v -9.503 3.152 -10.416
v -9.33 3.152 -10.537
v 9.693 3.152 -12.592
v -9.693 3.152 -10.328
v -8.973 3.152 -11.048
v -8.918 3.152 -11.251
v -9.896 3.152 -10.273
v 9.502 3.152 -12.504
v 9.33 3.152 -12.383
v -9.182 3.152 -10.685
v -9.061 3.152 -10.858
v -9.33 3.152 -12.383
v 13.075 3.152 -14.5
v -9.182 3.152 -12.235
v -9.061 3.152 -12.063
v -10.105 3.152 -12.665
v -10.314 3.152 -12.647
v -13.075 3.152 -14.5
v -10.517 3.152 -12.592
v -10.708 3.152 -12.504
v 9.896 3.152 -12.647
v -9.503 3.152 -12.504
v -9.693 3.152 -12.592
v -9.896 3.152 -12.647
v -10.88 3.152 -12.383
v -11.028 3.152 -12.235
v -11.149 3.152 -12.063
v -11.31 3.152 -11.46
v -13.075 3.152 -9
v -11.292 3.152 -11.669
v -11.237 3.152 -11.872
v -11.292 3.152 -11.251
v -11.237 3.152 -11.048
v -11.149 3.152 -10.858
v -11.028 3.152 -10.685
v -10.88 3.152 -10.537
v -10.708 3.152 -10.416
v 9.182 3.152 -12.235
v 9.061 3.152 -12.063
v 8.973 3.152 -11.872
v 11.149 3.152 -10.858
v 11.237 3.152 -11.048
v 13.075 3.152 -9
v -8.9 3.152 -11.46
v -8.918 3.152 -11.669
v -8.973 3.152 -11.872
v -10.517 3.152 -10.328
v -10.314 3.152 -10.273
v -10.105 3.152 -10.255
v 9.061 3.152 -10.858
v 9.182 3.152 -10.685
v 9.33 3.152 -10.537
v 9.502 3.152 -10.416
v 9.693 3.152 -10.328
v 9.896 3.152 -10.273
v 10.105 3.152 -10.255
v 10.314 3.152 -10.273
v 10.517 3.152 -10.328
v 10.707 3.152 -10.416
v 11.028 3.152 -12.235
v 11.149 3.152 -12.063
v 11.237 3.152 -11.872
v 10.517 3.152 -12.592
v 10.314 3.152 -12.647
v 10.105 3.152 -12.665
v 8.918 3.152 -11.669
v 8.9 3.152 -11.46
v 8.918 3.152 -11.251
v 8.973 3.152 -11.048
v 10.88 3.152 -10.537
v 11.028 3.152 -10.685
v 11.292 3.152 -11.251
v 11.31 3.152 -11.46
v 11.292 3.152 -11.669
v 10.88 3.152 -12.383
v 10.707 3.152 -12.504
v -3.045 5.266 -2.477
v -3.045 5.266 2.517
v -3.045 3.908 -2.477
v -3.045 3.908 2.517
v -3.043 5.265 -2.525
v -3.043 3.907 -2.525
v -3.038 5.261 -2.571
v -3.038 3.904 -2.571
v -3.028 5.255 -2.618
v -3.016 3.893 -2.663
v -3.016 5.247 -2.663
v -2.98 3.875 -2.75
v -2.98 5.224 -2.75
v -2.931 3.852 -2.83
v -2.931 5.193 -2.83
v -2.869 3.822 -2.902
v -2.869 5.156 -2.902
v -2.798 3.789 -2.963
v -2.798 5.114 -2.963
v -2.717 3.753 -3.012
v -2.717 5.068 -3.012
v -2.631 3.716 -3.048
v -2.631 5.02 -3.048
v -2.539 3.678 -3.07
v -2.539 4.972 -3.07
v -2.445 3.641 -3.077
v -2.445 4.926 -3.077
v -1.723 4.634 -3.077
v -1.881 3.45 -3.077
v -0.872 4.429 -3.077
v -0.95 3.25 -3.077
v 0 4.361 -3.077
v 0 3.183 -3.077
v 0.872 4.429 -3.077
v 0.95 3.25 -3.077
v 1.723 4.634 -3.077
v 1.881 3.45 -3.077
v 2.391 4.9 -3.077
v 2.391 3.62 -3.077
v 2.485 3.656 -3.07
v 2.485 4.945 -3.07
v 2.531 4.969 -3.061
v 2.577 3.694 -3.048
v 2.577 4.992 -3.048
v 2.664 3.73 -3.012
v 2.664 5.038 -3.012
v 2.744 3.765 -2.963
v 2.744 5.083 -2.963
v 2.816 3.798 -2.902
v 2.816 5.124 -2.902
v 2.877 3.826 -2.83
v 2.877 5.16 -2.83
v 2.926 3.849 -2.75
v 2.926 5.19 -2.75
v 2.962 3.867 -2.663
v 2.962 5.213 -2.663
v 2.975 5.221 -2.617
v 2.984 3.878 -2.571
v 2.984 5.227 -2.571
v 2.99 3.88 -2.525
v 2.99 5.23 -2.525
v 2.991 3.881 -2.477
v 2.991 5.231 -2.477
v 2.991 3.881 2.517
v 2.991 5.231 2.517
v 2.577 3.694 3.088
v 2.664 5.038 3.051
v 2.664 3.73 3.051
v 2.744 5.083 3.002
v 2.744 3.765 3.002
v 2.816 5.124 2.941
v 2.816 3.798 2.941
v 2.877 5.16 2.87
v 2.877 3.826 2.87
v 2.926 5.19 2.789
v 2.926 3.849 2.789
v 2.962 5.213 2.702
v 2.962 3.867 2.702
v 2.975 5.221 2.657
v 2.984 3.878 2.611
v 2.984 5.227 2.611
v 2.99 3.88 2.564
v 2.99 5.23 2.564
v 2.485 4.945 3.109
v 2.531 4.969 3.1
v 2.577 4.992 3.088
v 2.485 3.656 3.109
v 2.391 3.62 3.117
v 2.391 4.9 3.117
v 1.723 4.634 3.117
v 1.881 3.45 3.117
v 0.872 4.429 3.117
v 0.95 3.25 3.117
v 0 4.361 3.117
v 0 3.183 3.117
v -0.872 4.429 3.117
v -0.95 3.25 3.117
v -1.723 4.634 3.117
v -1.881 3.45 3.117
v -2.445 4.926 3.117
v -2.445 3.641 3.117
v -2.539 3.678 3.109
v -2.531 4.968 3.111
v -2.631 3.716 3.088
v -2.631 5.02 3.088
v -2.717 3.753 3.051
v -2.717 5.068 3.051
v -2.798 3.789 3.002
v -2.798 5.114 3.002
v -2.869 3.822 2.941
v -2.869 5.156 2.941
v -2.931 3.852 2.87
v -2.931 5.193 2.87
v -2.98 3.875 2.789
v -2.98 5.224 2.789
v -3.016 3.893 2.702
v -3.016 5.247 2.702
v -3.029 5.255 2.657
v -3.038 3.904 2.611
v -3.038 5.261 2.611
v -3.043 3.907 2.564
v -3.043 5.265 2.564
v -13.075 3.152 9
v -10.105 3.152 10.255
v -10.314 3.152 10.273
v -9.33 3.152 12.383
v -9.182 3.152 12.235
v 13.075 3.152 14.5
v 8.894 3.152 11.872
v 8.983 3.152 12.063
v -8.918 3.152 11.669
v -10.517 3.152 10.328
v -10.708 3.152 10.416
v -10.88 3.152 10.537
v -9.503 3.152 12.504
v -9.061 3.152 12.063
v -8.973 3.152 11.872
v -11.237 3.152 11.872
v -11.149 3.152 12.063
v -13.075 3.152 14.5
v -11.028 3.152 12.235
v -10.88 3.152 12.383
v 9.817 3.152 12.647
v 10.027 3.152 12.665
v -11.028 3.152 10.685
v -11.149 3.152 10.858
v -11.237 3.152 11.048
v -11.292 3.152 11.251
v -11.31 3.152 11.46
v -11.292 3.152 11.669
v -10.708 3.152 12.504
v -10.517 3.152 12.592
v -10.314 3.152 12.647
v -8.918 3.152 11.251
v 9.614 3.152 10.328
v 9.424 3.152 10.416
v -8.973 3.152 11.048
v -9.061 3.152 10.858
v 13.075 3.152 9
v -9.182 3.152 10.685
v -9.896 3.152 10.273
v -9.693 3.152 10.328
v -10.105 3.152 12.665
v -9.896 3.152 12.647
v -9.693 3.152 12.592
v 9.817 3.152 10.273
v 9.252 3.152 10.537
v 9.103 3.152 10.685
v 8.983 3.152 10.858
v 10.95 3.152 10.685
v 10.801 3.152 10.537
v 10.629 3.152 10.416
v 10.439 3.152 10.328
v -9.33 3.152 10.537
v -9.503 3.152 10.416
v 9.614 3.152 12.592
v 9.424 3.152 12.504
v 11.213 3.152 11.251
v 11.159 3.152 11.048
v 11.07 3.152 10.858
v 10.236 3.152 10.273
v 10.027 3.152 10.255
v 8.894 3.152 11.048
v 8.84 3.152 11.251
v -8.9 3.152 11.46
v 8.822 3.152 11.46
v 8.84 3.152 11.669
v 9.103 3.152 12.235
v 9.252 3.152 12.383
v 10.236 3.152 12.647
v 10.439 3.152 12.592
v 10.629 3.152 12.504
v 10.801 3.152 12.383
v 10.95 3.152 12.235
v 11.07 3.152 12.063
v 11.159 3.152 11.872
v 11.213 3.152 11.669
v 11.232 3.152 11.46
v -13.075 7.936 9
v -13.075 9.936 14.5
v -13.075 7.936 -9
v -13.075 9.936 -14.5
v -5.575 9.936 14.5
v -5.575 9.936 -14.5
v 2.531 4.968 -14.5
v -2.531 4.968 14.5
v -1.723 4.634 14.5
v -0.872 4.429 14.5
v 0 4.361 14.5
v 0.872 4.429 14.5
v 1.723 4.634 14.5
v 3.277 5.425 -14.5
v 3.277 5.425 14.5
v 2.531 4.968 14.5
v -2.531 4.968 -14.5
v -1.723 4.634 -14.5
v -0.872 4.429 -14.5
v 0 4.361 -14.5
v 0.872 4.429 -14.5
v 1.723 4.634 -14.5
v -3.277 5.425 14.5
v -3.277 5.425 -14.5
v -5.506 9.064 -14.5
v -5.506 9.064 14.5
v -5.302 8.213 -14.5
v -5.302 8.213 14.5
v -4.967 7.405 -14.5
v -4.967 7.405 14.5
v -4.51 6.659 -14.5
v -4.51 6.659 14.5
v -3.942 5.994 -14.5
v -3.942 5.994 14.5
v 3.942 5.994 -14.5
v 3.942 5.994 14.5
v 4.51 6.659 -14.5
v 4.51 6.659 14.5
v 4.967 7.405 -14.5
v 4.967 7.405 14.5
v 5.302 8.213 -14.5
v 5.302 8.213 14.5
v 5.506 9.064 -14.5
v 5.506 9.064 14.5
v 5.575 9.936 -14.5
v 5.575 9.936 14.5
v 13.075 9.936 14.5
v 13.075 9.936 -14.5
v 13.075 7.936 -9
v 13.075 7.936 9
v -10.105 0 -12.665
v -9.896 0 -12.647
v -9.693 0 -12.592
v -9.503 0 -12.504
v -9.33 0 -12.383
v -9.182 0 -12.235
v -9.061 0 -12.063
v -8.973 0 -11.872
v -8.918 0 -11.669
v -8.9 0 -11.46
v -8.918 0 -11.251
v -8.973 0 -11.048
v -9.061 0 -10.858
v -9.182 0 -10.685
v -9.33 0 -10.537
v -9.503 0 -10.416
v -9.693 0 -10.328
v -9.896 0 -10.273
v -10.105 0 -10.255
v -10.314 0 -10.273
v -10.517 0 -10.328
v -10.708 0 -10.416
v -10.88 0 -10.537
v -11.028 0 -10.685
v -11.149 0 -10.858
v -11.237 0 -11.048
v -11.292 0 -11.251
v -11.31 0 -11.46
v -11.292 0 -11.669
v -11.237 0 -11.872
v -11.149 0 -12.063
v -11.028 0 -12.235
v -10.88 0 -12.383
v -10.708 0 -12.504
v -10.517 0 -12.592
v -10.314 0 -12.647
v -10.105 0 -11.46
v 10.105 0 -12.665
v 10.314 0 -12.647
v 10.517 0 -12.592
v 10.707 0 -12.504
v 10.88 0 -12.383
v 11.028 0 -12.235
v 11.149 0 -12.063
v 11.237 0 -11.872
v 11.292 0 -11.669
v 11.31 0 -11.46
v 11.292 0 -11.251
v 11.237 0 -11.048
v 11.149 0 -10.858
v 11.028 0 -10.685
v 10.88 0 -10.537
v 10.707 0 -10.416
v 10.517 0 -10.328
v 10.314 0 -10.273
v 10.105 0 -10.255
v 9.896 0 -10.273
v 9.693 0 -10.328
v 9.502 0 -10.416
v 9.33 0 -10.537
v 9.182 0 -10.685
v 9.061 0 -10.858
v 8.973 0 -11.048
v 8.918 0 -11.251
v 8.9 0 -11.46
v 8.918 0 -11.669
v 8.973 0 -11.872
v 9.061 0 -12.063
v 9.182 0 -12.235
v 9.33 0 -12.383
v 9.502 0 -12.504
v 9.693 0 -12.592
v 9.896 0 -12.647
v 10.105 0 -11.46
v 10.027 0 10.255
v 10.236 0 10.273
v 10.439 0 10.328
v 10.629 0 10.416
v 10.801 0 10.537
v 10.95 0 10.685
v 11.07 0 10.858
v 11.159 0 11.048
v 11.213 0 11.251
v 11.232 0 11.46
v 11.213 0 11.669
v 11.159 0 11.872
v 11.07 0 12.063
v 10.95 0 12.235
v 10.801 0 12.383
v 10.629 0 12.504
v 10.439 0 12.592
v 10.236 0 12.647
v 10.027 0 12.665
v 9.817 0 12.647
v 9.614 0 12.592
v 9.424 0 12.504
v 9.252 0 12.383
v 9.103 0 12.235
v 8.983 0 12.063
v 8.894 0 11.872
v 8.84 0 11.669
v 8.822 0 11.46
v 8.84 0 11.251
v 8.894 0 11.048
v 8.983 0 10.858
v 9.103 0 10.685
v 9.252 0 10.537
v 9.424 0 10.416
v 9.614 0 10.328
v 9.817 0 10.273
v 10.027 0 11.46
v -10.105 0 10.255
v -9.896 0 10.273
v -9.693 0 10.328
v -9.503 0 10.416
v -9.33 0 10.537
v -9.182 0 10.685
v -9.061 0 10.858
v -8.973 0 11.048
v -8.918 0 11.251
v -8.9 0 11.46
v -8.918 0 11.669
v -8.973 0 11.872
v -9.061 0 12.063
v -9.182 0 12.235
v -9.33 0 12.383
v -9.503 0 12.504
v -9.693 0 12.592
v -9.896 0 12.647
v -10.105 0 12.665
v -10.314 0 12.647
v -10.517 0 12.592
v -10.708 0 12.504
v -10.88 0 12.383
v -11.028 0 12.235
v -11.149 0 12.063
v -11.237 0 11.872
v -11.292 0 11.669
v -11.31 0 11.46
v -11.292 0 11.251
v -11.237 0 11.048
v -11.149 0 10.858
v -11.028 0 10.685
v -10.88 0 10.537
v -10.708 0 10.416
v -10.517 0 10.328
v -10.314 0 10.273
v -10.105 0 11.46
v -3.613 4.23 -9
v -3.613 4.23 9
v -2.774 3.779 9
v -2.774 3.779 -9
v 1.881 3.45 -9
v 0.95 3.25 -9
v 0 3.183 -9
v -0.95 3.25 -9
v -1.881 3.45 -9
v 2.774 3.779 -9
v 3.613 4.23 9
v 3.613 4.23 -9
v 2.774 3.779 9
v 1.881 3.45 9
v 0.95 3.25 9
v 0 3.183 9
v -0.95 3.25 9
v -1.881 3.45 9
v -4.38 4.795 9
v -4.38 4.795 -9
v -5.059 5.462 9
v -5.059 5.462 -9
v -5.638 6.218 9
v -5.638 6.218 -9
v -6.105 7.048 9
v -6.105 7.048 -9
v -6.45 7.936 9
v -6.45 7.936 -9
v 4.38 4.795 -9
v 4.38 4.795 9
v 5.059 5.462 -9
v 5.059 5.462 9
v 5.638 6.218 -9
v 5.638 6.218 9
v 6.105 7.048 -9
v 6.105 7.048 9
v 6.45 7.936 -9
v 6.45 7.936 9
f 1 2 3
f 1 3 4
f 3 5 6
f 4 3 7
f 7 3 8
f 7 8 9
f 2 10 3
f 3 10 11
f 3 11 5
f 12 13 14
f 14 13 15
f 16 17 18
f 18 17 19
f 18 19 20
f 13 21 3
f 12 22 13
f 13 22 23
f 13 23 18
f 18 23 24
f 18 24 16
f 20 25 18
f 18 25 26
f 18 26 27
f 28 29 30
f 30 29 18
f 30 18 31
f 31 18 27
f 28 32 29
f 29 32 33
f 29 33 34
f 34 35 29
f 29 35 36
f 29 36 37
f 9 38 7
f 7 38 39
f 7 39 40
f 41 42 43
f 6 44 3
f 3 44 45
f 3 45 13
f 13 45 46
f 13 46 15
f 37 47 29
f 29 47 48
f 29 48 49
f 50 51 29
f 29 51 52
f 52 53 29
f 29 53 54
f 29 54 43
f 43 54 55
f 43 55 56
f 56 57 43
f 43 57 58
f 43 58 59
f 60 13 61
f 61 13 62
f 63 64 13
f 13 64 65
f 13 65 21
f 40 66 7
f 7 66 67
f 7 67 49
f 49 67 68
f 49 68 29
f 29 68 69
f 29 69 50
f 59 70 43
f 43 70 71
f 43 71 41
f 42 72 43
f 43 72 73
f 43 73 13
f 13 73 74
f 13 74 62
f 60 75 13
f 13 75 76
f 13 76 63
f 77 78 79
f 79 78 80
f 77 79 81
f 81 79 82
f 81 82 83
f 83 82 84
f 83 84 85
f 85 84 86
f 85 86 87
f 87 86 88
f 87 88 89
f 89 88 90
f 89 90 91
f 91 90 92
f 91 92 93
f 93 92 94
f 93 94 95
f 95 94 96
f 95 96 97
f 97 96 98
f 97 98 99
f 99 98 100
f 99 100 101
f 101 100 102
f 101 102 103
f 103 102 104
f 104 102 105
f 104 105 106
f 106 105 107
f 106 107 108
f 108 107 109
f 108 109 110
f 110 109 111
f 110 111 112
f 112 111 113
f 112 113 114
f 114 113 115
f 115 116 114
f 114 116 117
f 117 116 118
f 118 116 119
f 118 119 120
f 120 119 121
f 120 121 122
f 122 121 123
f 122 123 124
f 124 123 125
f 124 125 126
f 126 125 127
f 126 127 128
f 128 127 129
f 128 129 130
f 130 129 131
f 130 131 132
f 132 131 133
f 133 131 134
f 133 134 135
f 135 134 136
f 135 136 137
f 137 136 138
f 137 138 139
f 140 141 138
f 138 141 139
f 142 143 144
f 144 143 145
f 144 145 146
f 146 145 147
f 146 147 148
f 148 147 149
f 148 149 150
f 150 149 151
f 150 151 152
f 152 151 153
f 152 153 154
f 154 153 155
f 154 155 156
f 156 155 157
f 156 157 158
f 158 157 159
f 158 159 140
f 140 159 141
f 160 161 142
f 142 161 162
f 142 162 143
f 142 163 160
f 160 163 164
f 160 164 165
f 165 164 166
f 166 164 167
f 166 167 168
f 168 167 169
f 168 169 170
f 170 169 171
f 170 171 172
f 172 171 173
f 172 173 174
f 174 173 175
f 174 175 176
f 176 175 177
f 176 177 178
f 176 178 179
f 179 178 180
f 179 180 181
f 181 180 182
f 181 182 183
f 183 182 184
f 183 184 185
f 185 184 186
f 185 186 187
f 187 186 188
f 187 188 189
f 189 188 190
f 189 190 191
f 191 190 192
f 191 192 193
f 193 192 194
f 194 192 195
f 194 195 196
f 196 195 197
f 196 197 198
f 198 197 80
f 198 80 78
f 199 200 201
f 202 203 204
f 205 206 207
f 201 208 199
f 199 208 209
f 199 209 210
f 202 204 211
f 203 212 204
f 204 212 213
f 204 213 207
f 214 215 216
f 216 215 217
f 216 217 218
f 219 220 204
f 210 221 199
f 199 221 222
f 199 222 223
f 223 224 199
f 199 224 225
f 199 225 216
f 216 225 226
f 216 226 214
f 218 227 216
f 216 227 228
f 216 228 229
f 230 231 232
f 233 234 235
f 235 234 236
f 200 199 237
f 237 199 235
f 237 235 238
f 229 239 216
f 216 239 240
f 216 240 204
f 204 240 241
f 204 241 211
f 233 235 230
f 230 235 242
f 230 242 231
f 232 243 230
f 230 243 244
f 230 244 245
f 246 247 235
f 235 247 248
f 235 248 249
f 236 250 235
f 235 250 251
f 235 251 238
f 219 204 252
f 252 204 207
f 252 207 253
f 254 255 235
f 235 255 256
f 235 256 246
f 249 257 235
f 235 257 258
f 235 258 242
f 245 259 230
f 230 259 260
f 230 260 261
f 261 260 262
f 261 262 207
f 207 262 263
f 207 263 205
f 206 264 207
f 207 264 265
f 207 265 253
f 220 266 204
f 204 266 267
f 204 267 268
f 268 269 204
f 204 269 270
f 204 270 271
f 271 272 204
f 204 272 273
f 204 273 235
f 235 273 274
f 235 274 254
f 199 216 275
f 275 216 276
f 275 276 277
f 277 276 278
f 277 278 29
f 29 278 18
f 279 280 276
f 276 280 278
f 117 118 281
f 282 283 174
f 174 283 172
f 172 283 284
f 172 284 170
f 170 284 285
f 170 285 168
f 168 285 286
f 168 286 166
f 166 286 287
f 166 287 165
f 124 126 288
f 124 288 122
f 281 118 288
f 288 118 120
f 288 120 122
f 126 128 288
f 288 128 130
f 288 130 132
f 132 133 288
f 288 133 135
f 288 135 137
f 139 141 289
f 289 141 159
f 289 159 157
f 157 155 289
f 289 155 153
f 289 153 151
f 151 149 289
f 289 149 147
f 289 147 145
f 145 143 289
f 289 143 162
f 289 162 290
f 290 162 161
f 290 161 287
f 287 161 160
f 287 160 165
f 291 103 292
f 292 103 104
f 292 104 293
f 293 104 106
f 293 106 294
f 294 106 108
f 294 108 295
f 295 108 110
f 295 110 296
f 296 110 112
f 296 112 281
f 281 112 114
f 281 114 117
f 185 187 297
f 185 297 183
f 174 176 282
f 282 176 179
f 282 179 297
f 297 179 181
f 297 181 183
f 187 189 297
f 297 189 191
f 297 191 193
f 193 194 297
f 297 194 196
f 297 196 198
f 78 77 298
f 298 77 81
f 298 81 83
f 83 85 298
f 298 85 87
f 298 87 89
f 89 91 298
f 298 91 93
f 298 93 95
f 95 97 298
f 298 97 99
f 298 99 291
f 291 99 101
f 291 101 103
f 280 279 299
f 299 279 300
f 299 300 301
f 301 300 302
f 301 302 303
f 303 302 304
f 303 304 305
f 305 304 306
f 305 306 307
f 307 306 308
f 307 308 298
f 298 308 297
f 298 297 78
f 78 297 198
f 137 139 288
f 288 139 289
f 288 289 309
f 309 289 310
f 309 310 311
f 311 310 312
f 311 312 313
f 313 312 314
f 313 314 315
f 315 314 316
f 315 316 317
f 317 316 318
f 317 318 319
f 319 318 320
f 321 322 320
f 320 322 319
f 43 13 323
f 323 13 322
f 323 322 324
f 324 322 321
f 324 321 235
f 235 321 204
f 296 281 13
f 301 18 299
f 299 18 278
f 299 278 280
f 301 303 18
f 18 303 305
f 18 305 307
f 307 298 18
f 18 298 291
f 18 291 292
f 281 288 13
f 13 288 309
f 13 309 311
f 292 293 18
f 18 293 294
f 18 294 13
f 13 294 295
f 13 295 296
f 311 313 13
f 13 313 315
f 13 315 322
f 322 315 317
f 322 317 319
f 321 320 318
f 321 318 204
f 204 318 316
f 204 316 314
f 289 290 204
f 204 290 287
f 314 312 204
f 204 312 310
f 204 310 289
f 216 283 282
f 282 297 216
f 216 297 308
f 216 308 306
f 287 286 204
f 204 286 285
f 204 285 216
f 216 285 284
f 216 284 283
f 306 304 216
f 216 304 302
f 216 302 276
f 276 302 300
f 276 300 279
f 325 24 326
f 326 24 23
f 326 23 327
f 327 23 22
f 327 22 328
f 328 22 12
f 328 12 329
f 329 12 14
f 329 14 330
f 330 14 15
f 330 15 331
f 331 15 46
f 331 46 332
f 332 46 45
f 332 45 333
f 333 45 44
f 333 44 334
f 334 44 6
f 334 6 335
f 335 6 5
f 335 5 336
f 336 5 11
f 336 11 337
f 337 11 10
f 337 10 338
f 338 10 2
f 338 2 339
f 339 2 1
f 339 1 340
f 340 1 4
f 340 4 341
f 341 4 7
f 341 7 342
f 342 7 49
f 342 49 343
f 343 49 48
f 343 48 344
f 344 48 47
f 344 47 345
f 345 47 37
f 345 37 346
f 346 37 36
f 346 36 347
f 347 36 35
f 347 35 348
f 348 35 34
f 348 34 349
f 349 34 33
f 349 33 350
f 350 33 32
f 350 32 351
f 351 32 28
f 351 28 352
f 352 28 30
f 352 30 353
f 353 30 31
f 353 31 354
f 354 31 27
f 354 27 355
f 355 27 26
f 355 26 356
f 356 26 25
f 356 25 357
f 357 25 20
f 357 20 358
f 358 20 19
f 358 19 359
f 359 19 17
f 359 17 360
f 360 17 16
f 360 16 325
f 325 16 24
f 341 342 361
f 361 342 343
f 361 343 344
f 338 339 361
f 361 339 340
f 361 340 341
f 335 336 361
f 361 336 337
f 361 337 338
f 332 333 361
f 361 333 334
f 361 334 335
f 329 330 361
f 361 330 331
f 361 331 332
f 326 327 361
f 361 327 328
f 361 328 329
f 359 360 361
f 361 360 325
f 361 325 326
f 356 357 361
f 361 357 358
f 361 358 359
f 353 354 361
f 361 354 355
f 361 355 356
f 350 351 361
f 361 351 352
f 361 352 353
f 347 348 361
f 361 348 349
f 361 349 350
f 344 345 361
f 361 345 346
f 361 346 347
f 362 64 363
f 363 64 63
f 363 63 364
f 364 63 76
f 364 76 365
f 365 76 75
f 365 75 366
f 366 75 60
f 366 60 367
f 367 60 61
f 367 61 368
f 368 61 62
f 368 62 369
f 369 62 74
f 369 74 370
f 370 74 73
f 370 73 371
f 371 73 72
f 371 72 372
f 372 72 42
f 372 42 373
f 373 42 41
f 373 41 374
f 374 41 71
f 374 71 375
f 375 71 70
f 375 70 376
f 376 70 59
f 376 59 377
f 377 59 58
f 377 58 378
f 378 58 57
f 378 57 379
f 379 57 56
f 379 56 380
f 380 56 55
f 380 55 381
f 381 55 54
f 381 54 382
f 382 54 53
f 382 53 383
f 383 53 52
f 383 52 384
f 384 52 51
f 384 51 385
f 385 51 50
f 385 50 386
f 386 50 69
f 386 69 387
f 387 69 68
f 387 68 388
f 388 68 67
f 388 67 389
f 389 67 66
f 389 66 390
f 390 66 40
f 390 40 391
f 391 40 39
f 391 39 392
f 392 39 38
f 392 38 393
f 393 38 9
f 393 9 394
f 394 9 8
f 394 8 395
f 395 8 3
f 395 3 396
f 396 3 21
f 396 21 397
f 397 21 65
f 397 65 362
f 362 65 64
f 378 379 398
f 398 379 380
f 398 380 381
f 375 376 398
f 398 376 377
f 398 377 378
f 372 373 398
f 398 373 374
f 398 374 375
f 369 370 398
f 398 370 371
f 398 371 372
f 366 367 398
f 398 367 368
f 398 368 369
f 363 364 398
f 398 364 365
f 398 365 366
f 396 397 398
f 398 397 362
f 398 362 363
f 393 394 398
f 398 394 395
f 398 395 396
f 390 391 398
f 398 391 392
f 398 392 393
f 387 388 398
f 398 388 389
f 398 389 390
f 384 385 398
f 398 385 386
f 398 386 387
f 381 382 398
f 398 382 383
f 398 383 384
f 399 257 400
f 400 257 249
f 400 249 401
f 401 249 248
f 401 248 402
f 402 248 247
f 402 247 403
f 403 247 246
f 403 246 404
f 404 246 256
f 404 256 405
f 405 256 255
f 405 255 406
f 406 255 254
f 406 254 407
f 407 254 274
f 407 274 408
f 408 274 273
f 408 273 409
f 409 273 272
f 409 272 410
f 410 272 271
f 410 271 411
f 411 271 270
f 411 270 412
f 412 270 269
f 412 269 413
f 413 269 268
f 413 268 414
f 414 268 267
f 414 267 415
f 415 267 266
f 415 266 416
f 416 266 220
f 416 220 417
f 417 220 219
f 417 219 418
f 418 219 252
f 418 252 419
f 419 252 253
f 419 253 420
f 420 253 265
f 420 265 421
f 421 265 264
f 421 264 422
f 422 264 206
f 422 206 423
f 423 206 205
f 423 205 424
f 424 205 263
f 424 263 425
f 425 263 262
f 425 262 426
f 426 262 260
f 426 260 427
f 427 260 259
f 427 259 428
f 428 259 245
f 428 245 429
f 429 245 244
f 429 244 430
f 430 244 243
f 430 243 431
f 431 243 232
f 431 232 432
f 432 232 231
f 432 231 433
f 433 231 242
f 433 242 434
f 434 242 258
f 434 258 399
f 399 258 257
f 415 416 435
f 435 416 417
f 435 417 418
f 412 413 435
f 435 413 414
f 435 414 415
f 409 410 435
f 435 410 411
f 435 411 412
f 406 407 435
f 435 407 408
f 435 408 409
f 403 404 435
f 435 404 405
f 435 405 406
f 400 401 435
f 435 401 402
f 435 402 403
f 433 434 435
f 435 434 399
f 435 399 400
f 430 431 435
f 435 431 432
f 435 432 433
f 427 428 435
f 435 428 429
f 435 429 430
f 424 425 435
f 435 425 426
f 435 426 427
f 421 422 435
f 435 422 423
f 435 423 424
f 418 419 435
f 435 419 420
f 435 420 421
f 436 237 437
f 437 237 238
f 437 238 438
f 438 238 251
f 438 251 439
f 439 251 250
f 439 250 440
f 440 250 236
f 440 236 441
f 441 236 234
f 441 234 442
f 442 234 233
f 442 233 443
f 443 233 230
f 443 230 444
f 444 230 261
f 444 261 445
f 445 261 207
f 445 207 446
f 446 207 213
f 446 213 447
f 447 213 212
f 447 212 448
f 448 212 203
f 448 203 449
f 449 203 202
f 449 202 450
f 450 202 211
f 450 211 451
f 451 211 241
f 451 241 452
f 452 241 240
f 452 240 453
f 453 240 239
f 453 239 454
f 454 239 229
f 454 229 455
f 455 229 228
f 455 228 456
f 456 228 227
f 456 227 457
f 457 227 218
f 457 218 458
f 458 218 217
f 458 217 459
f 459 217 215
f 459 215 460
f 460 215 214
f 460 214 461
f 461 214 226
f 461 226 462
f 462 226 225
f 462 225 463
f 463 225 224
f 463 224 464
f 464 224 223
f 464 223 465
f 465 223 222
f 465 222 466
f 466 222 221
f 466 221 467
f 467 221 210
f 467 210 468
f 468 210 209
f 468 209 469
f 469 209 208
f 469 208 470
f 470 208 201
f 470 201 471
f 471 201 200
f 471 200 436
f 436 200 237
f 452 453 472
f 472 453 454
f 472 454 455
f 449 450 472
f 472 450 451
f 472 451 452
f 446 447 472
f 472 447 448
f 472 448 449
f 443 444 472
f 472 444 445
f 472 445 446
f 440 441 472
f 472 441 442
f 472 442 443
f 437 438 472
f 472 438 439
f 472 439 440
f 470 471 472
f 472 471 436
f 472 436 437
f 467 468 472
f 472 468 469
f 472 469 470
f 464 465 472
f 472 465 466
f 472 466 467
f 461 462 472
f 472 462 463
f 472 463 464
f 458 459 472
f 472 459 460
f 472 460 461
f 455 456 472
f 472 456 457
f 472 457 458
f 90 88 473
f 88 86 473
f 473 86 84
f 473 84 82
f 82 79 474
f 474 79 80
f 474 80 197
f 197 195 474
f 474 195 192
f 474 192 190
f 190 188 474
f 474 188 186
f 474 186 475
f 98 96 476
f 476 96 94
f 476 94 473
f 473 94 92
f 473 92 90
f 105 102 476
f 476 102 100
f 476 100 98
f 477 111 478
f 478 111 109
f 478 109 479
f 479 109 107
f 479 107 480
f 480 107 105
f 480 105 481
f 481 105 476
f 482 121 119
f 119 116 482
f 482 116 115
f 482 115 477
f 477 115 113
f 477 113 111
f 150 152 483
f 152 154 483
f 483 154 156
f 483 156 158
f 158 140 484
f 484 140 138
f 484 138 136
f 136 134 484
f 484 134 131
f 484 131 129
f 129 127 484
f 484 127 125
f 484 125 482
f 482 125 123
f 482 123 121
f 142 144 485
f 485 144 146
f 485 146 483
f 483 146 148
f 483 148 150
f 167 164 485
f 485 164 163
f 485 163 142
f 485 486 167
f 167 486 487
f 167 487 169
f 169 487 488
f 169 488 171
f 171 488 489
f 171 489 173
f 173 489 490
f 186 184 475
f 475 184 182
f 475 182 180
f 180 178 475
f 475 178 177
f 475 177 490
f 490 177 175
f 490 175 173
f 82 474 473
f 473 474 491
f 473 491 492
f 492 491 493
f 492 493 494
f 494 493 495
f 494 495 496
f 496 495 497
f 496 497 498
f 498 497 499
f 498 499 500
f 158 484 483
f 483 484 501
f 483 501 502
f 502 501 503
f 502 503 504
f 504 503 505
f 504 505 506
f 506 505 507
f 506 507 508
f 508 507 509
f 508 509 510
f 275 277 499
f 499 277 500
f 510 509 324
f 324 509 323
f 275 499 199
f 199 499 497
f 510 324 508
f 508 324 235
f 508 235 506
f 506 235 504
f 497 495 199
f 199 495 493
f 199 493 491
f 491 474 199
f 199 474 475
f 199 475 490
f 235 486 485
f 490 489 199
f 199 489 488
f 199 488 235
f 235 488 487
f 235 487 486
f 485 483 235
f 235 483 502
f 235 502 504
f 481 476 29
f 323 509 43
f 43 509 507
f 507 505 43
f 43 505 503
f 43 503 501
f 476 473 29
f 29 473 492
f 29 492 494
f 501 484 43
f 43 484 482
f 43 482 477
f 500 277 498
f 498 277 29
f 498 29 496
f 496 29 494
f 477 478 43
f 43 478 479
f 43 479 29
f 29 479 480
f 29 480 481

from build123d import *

# Parameters (mm, degrees)
BOSS_EXTRUDE1_DEPTH      = 14.5
BOSS_EXTRUDE1_DEPTH_BACK = 14.5
SKETCH2_R                = 1.205
BOSS_EXTRUDE2_DEPTH      = 3.151836
CUT_EXTRUDE1_START       = 9.93575
CUT_EXTRUDE1_DEPTH       = 10
CUT_EXTRUDE2_DEPTH       = 9
CUT_EXTRUDE2_DEPTH_BACK  = 9


with BuildPart() as part:
    # Sketch1 → Boss-Extrude1 (new body, two sides)
    with BuildSketch(Plane.XY) as boss_extrude1_sk:
        with BuildLine():
            Line((5.575, 9.935749893), (13.075, 9.935749893))
            Line((13.075, 9.935749893), (13.075, 3.151836247))
            Line((13.075, 3.151836247), (-13.075, 3.151836247))
            Line((-13.075, 3.151836247), (-13.075, 9.935749893))
            Line((-13.075, 9.935749893), (-5.575, 9.935749893))
            ThreePointArc((-5.575, 9.935749893), (0, 4.360749893), (5.575, 9.935749893))
        make_face()
    extrude(amount=BOSS_EXTRUDE1_DEPTH)
    extrude(boss_extrude1_sk.sketch, amount=-BOSS_EXTRUDE1_DEPTH_BACK)

    # Sketch2 → Boss-Extrude2 (add)
    with BuildSketch(Plane(origin=(0, 0, 0), x_dir=(1, 0, 0), z_dir=(0, 1, 0))):
        with Locations((10.105, 11.46)):
            Circle(SKETCH2_R)
        with Locations((10.026555832, -11.46)):
            Circle(SKETCH2_R)
        with Locations((-10.105, -11.46)):
            Circle(SKETCH2_R)
        with Locations((-10.105, 11.46)):
            Circle(SKETCH2_R)
    extrude(amount=BOSS_EXTRUDE2_DEPTH)

    # Sketch3 → Cut-Extrude1 (cut)
    with BuildSketch(Plane(origin=(0, 0, 0), x_dir=(1, 0, 0), z_dir=(0, 1, 0)).offset(CUT_EXTRUDE1_START)):
        with BuildLine():
            Line((-2.445097234, 3.077415604), (2.391371835, 3.077415604))
            ThreePointArc((2.391371835, 3.077415604), (2.815635904, 2.901679673), (2.991371835, 2.477415604))
            Line((2.991371835, 2.477415604), (2.991371835, -2.51686965))
            ThreePointArc((2.991371835, -2.51686965), (2.815635904, -2.941133719), (2.391371835, -3.11686965))
            Line((2.391371835, -3.11686965), (-2.445097234, -3.11686965))
            ThreePointArc((-2.445097234, -3.11686965), (-2.869361302, -2.941133719), (-3.045097234, -2.51686965))
            Line((-3.045097234, -2.51686965), (-3.045097234, 2.477415604))
            ThreePointArc((-3.045097234, 2.477415604), (-2.869361302, 2.901679673), (-2.445097234, 3.077415604))
        make_face()
    extrude(amount=-CUT_EXTRUDE1_DEPTH, mode=Mode.SUBTRACT)

    # Sketch5 → Cut-Extrude2 (cut, two sides)
    with BuildSketch(Plane.XY) as cut_extrude2_sk:
        with BuildLine():
            Line((-6.450228257, 7.935749893), (-13.075, 7.935749893))
            Line((-13.075, 7.935749893), (-13.075, 3.151836247))
            Line((-13.075, 3.151836247), (13.075, 3.151836247))
            Line((13.075, 3.151836247), (13.075, 7.935749893))
            Line((13.075, 7.935749893), (6.450228257, 7.935749893))
            ThreePointArc((6.450228257, 7.935749893), (0, 3.182569563), (-6.450228257, 7.935749893))
        make_face()
    extrude(amount=CUT_EXTRUDE2_DEPTH, mode=Mode.SUBTRACT)
    extrude(cut_extrude2_sk.sketch, amount=-CUT_EXTRUDE2_DEPTH_BACK, mode=Mode.SUBTRACT)


solid = part.part
